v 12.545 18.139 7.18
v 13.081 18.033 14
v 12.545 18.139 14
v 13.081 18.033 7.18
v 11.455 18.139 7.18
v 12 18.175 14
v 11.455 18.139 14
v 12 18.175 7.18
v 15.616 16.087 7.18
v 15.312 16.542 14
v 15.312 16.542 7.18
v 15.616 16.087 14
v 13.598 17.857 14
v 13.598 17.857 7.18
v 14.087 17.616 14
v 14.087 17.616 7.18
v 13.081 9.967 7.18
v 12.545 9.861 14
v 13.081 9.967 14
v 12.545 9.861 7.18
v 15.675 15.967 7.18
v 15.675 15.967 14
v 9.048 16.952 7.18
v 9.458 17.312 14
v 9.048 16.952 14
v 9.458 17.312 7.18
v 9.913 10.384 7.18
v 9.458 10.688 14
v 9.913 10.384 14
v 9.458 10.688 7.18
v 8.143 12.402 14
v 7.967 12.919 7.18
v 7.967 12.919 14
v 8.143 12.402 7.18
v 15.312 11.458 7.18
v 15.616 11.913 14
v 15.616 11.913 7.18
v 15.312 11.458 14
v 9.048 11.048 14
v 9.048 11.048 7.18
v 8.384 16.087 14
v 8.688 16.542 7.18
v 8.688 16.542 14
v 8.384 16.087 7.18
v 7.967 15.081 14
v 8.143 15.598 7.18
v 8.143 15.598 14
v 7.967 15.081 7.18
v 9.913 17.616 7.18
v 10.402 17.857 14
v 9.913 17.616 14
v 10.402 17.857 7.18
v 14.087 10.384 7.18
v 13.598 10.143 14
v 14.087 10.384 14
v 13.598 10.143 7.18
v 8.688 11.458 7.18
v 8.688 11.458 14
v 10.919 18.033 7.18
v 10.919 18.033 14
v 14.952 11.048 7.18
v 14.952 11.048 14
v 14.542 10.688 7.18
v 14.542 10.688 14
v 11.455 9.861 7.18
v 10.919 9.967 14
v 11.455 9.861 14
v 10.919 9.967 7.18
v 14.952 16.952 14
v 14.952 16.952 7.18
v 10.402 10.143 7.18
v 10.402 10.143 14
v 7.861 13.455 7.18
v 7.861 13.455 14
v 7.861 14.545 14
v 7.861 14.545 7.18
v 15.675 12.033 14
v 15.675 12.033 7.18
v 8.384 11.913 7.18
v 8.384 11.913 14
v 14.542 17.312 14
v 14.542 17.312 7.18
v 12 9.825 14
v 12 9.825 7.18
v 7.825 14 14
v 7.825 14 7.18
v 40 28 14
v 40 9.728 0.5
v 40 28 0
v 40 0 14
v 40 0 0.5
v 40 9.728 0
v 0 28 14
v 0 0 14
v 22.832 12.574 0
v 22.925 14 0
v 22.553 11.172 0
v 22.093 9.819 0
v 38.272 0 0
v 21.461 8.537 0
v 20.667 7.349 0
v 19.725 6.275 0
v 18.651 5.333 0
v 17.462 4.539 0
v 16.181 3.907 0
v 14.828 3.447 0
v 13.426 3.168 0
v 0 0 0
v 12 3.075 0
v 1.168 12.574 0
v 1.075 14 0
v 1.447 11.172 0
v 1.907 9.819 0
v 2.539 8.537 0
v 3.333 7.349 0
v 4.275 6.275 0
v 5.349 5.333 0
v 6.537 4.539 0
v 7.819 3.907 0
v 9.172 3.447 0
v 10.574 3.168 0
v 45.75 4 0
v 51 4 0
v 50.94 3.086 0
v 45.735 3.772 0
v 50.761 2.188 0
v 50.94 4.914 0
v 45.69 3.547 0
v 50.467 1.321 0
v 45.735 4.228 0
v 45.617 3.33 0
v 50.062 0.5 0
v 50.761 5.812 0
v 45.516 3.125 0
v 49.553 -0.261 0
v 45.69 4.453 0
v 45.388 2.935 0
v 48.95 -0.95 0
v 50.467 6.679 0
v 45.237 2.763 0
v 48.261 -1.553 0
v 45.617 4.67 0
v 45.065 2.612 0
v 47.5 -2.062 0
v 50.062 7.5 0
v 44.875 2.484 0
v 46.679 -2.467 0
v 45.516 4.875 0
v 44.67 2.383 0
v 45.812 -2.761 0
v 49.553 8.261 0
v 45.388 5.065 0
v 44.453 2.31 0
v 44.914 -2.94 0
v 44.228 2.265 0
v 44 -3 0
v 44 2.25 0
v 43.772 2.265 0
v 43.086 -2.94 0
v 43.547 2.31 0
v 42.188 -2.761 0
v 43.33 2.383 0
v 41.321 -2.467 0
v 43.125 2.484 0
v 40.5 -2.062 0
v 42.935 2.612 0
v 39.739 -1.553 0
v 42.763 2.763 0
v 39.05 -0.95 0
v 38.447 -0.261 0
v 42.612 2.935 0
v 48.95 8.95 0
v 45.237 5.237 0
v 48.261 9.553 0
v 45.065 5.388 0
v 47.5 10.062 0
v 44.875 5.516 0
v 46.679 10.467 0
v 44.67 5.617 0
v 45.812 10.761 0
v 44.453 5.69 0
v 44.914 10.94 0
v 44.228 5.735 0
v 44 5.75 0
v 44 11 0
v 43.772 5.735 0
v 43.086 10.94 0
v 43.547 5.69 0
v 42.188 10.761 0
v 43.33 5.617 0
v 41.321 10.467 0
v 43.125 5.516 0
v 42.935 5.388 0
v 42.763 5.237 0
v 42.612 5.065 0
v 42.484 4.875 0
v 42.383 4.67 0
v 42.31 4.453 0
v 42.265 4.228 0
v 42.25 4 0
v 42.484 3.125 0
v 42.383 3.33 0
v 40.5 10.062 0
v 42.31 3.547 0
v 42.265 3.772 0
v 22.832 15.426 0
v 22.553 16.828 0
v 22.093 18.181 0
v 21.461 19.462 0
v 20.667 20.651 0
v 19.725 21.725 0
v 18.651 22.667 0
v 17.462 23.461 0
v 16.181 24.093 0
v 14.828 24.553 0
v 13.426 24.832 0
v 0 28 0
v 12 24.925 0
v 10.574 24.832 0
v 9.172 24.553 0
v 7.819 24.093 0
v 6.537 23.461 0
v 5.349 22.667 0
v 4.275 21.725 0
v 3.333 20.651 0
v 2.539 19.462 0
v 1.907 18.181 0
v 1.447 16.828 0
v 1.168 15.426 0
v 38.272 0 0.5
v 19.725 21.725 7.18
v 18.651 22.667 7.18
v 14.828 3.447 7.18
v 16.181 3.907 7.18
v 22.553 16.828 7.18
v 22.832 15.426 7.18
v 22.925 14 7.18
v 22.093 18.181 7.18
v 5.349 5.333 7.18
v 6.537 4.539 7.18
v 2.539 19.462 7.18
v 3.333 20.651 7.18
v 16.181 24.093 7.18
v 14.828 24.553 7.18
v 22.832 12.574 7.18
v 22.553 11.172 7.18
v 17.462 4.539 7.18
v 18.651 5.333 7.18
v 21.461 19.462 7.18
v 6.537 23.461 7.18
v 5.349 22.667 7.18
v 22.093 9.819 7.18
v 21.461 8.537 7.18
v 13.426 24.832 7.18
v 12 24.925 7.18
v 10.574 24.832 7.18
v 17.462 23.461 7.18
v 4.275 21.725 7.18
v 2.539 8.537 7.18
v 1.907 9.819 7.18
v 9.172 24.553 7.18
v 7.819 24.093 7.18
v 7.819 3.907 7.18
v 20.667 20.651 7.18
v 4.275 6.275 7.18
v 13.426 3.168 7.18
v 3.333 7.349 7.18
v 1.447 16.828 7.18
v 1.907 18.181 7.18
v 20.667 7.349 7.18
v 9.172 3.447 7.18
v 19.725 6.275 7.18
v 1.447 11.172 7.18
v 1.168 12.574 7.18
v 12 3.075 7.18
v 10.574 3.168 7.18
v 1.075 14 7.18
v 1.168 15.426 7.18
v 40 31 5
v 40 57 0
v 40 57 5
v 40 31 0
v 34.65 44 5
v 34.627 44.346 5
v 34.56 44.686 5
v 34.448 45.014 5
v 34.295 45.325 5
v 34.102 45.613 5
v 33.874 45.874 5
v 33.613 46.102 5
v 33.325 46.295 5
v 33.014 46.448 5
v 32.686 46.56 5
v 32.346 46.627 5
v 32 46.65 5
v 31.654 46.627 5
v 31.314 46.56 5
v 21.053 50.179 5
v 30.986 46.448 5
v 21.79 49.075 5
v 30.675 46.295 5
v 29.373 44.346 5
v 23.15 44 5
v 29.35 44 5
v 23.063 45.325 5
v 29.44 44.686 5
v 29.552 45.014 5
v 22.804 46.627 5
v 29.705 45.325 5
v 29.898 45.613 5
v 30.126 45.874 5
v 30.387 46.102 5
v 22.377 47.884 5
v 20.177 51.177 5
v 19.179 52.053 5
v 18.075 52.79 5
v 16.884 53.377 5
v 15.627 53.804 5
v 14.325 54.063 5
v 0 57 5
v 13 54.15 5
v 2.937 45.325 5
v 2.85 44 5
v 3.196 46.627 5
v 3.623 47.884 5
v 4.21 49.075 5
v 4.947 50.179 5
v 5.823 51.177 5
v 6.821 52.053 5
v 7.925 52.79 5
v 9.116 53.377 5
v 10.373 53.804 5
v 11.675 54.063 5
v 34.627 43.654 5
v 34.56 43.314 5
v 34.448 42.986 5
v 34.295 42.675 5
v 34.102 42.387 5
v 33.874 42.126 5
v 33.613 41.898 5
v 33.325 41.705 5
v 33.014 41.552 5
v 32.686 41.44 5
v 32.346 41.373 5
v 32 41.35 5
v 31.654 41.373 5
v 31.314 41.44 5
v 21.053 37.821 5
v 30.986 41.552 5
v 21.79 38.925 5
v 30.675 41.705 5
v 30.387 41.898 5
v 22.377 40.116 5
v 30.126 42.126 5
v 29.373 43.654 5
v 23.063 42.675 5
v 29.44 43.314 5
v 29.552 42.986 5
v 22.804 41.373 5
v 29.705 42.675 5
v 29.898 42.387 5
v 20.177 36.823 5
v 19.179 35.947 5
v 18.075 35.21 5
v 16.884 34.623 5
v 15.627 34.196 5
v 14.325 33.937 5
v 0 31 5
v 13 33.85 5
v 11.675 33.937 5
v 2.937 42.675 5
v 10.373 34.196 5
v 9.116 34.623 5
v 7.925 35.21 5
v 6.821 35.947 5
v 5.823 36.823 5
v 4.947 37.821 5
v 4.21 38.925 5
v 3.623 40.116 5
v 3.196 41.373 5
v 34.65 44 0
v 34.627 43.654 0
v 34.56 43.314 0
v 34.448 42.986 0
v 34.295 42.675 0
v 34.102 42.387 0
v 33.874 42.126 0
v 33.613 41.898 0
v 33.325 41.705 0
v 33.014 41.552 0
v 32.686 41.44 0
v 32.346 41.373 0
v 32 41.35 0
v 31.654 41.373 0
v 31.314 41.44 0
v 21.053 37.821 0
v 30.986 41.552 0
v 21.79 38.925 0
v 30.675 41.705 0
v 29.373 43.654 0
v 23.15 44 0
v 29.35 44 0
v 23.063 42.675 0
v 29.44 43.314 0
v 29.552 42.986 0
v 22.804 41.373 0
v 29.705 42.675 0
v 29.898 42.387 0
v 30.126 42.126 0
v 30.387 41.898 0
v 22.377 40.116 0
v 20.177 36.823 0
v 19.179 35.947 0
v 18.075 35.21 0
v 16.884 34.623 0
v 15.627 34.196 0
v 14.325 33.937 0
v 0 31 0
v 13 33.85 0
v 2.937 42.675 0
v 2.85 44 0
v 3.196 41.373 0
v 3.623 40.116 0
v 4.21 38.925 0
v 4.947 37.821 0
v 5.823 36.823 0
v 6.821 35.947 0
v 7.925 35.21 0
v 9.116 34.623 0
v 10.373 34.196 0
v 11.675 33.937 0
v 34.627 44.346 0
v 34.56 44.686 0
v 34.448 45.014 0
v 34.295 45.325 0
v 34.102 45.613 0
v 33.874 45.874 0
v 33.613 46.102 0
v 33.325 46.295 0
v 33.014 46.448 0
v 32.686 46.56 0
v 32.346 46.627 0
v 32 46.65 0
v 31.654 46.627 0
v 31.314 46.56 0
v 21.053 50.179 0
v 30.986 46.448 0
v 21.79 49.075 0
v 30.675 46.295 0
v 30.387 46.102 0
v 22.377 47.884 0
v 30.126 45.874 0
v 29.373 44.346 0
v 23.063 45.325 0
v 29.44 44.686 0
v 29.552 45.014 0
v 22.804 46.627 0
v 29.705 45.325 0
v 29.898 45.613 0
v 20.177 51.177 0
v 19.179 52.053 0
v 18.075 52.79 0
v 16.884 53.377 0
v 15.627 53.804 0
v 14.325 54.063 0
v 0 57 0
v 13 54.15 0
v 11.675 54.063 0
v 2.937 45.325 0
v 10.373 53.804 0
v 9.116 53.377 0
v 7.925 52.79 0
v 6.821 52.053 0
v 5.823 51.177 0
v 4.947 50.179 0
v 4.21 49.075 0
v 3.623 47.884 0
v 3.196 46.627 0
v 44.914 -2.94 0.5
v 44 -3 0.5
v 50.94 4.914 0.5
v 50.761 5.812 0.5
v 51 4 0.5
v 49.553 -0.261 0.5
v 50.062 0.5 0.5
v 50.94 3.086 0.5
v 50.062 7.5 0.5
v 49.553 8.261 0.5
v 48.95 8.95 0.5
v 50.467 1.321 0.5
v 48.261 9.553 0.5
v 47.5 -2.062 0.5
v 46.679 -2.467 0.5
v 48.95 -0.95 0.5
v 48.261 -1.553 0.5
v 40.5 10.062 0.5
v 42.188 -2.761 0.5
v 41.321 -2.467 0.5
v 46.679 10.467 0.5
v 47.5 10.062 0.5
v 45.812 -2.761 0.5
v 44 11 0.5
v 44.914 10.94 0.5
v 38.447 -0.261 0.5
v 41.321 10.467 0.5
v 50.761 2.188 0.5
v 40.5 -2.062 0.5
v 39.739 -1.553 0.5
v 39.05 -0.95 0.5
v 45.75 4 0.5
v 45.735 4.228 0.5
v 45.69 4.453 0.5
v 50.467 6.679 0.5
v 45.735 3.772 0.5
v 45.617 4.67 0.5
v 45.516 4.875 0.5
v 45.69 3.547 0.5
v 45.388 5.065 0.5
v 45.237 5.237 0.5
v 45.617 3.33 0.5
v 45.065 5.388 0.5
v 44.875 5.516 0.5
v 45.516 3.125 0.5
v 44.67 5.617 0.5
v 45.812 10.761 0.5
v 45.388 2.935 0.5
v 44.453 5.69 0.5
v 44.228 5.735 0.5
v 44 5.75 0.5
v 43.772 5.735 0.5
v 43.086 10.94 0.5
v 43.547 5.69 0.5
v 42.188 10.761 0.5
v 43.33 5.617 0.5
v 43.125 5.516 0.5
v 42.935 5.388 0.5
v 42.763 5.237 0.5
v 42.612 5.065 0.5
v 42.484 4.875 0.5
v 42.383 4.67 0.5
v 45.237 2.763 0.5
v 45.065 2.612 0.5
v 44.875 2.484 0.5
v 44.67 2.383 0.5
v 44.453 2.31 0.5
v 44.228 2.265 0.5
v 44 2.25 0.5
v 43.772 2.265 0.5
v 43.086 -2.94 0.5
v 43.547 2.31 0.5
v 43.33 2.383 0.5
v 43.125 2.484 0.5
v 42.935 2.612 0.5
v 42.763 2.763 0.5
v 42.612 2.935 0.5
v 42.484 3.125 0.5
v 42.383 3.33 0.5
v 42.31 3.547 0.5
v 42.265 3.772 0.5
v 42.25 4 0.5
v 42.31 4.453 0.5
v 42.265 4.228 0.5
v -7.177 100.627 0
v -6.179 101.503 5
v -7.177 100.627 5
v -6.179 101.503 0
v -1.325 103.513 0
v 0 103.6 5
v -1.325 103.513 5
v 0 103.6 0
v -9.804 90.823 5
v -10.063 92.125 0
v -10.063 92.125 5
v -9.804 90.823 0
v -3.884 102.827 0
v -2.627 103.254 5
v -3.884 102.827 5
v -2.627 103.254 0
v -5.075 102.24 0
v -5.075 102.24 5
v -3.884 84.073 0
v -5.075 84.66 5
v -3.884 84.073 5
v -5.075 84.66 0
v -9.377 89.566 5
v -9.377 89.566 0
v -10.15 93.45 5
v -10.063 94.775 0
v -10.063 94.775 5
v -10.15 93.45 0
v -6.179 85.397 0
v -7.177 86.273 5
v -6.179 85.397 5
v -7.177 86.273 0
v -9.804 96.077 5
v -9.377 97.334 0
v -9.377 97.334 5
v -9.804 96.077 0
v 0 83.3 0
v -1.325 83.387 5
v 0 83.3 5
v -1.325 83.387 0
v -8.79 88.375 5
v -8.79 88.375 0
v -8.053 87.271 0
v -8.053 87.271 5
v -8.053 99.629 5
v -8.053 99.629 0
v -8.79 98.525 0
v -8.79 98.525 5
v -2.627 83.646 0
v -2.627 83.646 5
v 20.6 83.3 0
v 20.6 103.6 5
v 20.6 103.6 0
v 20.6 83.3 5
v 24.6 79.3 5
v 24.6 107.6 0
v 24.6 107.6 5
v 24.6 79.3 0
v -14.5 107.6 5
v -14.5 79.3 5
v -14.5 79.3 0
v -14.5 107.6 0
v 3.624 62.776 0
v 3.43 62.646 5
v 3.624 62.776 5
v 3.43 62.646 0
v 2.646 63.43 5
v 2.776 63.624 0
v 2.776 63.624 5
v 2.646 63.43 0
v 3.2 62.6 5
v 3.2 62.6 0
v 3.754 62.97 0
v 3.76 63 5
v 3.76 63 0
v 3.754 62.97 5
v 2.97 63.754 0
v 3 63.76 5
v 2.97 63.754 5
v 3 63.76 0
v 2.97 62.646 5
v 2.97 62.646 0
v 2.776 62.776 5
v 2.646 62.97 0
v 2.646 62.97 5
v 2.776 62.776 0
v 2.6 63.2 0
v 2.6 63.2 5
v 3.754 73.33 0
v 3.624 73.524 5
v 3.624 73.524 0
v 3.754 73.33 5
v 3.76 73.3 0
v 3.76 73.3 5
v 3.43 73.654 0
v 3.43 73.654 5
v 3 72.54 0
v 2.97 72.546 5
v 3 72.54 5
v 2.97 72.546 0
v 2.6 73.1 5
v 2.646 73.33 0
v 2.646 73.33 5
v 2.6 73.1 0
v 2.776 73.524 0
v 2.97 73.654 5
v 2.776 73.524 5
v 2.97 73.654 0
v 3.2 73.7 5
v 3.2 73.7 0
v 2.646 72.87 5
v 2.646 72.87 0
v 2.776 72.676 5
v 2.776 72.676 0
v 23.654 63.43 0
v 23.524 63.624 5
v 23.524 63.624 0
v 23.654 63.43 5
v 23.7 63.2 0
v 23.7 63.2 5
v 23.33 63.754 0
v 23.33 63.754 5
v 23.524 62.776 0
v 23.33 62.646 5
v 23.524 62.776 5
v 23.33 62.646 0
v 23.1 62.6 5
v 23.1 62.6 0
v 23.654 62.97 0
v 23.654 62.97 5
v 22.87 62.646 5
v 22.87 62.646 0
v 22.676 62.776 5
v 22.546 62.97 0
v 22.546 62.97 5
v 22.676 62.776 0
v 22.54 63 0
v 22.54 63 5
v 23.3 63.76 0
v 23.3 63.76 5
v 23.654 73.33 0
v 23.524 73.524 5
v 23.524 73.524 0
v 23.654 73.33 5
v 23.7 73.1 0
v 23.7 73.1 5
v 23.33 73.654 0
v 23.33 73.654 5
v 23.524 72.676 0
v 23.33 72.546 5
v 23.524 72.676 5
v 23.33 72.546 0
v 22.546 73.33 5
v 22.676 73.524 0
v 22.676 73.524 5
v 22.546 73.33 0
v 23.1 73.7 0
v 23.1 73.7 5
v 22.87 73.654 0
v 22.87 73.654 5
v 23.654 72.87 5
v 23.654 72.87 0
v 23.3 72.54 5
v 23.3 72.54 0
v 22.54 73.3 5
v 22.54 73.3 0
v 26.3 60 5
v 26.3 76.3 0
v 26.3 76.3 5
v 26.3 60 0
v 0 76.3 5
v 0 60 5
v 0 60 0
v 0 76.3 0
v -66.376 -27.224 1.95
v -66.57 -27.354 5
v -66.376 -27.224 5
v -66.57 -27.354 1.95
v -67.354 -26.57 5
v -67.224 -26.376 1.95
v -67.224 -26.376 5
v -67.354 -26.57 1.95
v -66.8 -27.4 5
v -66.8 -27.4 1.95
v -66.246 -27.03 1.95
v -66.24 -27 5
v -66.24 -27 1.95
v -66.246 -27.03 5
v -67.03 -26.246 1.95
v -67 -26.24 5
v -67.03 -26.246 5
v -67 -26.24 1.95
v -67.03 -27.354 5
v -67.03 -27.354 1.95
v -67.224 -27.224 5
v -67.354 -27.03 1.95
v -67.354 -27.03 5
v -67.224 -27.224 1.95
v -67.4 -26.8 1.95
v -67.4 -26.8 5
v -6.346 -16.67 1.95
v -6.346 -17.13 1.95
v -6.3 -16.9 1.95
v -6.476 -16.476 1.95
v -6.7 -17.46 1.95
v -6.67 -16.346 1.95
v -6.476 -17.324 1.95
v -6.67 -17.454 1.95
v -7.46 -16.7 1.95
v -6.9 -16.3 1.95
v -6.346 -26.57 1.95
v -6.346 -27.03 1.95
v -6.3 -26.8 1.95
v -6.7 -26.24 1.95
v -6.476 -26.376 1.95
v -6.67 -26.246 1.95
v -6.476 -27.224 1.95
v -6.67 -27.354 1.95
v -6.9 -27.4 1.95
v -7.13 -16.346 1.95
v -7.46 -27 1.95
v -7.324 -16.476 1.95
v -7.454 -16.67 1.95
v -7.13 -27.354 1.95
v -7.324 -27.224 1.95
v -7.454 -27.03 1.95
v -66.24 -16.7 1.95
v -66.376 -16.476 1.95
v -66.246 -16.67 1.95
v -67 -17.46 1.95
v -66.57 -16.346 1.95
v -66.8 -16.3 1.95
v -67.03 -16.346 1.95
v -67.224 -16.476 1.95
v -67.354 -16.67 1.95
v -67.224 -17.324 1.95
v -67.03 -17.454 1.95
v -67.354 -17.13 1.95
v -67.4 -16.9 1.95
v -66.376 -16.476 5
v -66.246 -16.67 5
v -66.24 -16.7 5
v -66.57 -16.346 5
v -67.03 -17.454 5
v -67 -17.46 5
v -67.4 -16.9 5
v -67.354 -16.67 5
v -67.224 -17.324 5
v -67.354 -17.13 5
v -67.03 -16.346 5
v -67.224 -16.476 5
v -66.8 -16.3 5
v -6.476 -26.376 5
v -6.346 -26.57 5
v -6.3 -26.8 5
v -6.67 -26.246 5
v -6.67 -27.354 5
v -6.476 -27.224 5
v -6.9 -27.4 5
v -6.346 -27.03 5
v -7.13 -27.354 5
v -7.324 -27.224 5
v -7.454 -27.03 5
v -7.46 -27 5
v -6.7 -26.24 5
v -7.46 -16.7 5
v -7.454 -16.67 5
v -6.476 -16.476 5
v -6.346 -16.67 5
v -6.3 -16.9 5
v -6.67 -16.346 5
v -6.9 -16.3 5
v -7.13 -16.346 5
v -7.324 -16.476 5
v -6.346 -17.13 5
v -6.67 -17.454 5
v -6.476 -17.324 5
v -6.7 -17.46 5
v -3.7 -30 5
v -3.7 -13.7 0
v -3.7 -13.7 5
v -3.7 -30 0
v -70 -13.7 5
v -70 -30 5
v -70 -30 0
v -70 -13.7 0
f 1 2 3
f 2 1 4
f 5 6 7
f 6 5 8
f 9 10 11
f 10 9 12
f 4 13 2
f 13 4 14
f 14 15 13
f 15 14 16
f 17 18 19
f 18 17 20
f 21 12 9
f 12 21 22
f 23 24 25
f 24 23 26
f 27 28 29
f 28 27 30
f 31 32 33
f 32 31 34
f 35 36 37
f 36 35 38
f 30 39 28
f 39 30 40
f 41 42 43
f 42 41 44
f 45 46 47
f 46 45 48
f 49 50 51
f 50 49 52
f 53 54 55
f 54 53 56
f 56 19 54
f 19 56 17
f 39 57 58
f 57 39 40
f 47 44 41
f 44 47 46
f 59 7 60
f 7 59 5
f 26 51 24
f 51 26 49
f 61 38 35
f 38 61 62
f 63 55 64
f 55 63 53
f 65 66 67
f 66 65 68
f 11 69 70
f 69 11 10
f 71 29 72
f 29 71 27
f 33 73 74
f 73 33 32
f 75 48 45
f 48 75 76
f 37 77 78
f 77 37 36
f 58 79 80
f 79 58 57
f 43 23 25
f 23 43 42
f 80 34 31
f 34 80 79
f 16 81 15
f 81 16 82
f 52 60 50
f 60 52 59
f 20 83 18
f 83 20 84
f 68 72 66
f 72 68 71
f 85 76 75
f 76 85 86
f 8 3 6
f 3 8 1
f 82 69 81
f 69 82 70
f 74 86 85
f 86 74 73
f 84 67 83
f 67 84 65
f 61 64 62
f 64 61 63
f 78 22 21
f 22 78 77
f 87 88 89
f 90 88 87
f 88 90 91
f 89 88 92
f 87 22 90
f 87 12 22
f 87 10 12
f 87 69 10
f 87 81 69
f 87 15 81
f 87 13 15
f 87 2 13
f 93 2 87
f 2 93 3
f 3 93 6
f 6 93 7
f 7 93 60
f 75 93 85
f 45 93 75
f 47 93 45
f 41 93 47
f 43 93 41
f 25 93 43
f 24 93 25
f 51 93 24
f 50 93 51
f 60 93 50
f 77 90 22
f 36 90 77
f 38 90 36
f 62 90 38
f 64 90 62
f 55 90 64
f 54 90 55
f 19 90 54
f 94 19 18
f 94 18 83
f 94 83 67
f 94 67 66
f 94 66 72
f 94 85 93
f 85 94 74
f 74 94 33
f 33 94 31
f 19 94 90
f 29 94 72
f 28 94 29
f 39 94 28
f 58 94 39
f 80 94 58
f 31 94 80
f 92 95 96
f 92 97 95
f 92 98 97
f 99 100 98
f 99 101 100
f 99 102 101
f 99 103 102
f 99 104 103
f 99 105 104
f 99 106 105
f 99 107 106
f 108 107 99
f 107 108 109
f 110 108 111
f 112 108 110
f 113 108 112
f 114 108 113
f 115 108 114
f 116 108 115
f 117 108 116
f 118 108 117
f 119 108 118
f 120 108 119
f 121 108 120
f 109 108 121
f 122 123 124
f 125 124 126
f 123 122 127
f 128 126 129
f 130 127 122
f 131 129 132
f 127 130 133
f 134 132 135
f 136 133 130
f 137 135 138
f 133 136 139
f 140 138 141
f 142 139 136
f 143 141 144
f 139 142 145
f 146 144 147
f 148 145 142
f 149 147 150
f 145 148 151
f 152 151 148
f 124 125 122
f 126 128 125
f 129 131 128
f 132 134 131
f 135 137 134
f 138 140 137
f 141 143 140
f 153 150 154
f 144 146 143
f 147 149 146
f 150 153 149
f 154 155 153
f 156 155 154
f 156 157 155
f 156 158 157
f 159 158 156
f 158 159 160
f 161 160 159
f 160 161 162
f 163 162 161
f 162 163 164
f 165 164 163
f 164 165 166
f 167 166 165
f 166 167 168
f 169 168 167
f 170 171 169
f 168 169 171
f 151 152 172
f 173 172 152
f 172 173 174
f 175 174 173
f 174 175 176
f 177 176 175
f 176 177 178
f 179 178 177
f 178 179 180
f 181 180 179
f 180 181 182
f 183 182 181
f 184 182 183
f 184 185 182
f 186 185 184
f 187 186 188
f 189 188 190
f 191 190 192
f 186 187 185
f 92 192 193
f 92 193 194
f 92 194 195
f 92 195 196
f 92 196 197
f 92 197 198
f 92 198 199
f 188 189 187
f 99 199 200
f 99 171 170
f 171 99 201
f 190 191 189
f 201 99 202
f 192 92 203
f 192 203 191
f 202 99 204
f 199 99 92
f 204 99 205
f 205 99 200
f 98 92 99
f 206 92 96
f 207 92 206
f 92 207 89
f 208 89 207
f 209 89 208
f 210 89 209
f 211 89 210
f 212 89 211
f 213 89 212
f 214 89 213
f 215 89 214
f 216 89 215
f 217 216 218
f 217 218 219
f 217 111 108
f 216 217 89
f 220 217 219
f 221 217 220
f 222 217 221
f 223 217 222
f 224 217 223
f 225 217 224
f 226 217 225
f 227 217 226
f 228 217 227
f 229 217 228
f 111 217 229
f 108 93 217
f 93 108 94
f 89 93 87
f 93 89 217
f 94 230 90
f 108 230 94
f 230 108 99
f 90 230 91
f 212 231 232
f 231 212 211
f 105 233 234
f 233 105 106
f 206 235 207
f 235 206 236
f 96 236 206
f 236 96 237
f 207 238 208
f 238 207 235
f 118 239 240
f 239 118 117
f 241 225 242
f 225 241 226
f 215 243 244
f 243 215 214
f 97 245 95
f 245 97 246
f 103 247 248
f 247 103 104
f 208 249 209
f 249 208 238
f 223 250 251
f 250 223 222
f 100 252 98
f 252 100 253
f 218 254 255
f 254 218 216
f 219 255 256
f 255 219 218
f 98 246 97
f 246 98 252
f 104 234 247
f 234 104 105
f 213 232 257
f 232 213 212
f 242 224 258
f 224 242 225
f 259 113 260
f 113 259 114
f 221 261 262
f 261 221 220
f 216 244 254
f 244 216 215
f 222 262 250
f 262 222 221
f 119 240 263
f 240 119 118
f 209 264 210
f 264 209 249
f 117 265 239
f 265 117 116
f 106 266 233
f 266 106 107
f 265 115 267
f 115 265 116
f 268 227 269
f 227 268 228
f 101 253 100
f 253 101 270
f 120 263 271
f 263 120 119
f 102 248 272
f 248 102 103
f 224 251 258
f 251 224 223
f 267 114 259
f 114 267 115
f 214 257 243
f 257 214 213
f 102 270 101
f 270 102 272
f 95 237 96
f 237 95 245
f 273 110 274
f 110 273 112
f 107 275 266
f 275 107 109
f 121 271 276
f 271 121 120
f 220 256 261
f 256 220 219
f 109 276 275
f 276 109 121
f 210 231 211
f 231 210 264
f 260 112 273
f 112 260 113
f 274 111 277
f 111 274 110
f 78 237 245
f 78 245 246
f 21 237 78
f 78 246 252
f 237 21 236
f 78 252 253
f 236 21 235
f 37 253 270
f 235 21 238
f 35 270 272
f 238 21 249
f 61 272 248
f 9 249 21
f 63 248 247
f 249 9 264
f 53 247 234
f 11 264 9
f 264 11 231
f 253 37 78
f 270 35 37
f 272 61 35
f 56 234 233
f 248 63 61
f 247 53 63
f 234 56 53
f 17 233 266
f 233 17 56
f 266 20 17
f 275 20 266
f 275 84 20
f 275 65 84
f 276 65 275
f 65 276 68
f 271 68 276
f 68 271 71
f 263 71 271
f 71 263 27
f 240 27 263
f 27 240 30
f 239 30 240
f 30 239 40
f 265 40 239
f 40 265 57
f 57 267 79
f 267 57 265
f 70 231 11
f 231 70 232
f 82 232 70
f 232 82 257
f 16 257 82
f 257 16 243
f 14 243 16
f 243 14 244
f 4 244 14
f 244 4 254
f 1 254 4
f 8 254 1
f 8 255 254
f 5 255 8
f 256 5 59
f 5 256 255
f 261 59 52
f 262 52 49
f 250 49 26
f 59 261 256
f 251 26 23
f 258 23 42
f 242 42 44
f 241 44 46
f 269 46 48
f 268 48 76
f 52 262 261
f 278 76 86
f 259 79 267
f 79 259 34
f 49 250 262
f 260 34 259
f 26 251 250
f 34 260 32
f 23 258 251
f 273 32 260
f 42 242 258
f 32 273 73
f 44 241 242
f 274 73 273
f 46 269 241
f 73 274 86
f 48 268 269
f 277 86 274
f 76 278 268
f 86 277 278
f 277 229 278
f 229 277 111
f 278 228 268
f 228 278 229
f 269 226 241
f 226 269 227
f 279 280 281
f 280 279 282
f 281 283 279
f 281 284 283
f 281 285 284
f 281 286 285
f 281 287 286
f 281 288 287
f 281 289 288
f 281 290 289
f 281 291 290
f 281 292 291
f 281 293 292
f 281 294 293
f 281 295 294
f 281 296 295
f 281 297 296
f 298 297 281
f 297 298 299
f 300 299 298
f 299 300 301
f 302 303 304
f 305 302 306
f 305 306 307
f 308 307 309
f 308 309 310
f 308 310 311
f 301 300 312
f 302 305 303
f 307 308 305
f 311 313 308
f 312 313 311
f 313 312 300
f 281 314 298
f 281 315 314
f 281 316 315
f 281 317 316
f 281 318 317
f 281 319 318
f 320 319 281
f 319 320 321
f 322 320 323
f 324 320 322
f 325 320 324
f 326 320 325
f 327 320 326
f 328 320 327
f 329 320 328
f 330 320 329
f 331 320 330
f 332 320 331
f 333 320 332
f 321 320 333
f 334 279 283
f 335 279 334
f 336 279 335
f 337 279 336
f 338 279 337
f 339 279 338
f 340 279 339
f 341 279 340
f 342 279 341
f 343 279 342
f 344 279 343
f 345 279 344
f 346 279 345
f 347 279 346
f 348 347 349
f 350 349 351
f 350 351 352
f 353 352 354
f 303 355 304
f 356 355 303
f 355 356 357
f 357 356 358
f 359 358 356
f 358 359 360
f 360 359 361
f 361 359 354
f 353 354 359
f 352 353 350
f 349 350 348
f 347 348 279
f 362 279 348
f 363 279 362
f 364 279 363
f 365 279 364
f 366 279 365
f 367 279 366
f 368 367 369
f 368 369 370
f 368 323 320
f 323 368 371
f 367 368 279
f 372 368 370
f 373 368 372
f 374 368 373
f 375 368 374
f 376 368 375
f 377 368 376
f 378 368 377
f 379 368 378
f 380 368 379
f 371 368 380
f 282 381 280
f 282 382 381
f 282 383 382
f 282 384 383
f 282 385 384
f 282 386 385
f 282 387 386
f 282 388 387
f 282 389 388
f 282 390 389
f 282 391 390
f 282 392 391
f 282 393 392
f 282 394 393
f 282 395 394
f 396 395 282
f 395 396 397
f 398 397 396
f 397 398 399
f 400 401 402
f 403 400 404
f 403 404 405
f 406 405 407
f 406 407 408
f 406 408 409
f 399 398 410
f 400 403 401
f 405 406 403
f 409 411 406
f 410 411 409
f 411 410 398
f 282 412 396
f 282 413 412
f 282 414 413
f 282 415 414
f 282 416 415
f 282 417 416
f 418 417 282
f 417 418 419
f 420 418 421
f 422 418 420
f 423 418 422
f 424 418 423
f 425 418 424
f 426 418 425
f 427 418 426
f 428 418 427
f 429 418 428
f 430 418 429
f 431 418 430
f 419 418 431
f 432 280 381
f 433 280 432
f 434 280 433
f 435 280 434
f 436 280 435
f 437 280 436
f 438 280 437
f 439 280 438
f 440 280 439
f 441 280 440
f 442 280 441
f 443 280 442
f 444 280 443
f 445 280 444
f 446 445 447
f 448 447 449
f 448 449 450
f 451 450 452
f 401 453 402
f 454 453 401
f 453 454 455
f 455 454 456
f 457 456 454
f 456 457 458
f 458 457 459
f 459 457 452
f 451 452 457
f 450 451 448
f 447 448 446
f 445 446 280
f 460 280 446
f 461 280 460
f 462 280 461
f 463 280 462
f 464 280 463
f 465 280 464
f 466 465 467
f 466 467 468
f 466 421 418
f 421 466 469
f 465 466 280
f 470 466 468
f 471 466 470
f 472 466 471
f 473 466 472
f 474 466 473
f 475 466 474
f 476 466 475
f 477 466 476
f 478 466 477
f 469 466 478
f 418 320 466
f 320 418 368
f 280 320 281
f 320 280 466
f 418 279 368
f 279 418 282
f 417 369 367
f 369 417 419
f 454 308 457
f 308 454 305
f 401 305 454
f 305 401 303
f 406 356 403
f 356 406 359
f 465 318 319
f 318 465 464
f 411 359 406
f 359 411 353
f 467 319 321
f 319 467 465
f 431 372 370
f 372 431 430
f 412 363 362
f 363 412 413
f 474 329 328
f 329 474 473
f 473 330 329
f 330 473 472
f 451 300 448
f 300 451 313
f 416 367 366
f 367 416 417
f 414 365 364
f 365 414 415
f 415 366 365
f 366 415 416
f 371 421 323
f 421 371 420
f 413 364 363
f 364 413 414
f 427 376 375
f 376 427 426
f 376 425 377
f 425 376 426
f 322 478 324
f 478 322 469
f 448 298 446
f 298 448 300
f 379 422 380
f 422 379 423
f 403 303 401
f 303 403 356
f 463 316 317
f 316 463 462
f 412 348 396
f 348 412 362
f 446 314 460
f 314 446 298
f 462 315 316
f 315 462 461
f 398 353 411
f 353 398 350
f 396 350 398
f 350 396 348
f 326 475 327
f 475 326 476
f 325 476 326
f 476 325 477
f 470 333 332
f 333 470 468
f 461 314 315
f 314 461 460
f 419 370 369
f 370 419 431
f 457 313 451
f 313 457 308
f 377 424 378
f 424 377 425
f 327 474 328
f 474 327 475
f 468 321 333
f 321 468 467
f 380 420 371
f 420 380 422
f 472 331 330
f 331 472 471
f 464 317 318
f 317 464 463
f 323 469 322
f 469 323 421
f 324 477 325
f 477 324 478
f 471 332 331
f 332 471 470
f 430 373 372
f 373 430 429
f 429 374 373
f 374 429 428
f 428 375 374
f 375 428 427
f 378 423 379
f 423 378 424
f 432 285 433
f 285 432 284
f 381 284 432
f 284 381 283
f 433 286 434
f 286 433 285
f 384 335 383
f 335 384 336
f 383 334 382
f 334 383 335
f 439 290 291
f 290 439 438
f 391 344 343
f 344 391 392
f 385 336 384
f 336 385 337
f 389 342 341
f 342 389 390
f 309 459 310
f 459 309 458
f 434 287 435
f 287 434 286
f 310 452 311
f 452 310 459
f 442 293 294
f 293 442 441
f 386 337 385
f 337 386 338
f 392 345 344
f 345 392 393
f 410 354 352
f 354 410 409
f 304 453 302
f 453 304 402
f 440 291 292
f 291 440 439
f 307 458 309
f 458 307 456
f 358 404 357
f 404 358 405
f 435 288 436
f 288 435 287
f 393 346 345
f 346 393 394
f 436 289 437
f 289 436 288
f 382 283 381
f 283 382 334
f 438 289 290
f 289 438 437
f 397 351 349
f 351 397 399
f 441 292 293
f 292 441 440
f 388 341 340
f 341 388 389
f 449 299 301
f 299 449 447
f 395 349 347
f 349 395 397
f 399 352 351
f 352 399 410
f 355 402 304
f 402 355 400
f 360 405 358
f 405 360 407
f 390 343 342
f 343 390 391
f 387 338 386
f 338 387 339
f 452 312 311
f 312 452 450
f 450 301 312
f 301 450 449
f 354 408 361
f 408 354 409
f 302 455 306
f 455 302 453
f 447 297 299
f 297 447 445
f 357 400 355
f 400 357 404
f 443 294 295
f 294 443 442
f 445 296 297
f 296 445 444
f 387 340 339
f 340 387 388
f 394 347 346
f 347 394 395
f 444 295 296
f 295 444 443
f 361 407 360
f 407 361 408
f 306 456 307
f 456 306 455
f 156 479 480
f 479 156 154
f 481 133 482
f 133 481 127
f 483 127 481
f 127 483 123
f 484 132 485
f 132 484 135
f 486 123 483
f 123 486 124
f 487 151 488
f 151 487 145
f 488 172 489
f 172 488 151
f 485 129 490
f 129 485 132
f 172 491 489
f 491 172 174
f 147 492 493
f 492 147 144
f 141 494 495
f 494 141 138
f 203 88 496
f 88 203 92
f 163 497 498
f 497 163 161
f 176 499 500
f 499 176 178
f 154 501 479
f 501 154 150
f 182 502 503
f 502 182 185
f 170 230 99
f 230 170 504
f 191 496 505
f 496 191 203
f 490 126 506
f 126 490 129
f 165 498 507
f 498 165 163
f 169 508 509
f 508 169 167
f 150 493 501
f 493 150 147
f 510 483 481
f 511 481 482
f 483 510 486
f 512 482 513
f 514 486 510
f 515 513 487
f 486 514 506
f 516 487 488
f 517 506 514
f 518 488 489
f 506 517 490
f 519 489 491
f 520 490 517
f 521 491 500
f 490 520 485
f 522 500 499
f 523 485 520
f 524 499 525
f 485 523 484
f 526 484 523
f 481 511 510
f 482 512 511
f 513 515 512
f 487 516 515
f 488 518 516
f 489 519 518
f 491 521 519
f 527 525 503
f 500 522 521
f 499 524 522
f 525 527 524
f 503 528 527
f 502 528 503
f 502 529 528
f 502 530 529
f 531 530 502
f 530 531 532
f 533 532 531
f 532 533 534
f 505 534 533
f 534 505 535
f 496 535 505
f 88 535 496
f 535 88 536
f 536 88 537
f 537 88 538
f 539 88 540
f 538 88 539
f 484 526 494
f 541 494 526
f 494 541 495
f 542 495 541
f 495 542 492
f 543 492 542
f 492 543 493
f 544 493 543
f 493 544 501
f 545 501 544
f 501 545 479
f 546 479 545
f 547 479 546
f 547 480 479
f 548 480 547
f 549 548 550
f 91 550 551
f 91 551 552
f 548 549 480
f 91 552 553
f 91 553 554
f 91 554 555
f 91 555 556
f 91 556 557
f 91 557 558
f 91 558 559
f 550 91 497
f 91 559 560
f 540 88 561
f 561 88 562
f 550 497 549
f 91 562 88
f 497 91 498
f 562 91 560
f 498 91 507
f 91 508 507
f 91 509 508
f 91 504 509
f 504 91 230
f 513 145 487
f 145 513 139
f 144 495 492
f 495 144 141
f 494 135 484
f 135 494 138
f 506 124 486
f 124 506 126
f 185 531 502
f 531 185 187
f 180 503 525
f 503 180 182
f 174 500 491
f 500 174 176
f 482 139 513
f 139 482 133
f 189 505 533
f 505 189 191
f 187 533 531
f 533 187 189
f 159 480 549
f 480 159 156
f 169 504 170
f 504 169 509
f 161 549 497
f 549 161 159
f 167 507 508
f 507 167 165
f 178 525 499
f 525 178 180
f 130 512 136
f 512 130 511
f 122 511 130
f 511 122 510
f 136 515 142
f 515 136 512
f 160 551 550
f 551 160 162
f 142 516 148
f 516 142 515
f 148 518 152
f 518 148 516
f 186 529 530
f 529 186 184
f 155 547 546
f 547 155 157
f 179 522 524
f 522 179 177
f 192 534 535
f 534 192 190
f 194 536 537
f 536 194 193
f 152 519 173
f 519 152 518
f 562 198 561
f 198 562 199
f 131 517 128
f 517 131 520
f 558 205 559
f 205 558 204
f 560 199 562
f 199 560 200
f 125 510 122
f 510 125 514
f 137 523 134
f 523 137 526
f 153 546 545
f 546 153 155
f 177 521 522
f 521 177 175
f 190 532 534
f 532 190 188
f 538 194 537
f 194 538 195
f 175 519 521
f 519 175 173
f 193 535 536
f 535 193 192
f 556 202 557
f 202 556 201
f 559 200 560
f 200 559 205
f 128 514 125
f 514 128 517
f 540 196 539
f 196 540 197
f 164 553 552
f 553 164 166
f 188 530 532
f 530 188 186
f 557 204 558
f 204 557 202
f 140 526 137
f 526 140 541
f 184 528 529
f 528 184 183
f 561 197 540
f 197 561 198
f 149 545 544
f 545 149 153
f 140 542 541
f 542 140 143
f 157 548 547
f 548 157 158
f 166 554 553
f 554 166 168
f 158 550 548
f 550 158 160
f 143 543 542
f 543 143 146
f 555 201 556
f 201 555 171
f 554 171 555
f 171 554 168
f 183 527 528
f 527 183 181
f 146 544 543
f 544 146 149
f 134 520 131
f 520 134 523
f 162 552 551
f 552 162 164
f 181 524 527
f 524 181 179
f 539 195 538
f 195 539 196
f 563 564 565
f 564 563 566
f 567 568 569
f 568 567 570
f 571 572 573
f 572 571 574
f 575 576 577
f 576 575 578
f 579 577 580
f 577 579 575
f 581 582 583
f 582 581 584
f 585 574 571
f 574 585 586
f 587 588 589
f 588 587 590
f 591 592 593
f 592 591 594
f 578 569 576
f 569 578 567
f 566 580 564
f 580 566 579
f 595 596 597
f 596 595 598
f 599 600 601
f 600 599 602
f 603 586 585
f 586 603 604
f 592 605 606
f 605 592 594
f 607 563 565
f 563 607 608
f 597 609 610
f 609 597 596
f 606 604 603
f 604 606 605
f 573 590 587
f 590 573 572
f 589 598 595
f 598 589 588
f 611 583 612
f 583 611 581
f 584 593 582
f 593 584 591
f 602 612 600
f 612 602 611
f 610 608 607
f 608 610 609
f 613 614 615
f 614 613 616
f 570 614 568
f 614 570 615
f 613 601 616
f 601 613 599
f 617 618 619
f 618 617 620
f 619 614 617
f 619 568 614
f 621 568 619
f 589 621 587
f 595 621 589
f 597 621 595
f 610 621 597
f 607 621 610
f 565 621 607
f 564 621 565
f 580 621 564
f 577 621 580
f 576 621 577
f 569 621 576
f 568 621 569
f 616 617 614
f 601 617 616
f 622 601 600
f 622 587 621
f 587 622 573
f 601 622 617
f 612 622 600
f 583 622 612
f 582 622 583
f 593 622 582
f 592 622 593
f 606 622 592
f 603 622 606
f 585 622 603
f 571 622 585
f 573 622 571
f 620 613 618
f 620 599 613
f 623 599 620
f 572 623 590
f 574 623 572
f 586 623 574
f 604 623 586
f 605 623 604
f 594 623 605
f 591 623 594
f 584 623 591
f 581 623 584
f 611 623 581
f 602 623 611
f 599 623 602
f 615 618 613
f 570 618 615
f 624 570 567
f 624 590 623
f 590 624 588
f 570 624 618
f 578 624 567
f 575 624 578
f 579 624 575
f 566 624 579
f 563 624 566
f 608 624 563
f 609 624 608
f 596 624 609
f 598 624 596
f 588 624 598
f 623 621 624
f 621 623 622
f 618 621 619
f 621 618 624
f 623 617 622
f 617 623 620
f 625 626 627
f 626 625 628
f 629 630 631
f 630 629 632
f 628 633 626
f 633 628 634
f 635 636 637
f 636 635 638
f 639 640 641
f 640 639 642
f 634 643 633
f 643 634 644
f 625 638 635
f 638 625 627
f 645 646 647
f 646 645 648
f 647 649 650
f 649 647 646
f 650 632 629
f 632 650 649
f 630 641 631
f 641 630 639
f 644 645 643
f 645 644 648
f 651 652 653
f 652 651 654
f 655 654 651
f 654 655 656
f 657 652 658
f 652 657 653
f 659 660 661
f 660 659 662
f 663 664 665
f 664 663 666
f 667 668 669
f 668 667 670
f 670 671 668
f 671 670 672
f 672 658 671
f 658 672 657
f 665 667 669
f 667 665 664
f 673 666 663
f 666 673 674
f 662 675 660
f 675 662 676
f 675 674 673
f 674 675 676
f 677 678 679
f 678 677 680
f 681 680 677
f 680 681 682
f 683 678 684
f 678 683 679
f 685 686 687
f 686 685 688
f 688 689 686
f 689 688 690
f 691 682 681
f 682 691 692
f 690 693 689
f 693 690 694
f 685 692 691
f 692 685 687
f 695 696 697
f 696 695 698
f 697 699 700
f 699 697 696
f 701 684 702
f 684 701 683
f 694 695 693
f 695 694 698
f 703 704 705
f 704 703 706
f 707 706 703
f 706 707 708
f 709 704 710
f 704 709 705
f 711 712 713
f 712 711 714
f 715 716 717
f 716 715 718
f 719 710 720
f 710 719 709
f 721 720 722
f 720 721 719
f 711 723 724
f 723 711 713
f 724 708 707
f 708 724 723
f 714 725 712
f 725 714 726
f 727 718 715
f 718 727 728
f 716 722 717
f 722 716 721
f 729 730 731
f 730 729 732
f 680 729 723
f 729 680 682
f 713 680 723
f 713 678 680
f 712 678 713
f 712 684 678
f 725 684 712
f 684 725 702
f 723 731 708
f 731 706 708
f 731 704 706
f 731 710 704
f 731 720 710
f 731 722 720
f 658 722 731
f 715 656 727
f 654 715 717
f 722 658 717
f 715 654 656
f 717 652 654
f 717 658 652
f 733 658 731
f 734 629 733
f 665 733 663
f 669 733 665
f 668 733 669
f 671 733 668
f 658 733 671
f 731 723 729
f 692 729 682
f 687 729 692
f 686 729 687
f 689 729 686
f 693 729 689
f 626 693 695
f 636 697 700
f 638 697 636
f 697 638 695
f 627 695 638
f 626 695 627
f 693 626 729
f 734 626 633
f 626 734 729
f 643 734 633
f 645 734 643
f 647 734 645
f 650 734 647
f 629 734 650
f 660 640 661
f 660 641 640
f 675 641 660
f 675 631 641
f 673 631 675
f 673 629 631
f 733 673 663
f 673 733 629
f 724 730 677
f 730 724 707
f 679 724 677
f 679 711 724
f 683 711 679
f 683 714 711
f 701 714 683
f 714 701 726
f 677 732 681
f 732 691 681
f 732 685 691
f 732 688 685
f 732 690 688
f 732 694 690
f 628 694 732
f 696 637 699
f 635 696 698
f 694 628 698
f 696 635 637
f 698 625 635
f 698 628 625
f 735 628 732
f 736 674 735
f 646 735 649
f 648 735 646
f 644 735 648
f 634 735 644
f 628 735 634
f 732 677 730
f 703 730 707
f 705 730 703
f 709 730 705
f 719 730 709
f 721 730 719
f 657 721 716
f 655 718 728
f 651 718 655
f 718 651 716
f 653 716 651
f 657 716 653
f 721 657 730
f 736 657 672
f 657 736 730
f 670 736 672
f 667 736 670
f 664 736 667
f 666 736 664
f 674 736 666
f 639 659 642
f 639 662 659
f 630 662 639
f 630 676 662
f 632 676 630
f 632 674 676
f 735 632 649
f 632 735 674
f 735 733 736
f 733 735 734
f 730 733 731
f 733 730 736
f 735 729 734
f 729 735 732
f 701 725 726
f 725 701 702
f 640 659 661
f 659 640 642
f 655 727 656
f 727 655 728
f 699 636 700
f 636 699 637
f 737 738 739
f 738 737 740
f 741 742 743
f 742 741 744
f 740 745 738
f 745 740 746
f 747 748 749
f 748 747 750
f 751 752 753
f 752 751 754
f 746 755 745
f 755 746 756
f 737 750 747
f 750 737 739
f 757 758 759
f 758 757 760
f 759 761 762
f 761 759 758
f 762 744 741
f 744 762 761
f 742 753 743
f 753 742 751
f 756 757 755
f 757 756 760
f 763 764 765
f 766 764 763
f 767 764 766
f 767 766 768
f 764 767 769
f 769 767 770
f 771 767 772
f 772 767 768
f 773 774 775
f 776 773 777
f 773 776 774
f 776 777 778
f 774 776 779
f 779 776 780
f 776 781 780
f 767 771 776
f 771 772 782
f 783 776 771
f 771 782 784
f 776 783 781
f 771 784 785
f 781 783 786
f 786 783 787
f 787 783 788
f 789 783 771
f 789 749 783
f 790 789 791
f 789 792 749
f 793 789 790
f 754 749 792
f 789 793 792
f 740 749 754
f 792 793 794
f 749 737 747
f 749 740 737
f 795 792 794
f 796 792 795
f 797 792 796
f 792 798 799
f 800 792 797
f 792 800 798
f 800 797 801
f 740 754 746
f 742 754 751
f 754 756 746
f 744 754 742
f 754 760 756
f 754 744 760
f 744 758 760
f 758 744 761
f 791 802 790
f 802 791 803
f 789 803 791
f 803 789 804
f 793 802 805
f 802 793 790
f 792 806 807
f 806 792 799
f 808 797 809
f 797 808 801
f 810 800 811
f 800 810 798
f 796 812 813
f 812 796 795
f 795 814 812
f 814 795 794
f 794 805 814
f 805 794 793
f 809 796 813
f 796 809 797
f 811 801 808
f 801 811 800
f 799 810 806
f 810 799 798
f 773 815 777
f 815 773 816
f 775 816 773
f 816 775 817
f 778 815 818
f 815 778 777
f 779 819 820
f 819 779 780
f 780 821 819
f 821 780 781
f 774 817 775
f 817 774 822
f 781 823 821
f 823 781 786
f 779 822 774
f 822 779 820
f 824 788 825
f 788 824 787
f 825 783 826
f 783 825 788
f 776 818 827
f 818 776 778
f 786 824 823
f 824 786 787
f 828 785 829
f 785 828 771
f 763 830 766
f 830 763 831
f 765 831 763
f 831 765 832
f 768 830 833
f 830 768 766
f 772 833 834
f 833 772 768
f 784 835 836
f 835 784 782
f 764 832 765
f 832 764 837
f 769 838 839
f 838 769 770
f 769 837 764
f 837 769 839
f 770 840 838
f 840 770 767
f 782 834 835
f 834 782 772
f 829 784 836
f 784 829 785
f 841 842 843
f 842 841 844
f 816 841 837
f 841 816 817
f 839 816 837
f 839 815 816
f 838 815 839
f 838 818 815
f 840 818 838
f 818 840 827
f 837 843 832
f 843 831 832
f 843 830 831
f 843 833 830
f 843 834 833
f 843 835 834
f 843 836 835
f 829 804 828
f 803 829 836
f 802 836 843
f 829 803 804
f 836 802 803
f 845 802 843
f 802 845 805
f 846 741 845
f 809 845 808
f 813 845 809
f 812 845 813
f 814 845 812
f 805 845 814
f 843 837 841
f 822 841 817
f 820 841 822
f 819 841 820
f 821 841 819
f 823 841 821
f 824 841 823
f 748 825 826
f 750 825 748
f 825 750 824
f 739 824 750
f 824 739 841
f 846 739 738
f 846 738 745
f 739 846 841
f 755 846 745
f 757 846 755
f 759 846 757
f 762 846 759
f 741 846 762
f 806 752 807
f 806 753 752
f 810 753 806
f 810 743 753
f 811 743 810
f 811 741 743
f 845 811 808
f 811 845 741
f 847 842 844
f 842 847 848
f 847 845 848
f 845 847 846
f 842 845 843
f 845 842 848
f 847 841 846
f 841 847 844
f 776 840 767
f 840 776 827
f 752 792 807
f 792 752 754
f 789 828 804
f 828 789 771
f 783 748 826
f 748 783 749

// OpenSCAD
// Gen-DB — fit coupon: O20/O5 THROUGH pockets at carrier thickness (test on a steel offcut), 608 seat,
// D-flat bore, gap shim, and one bobbin-bay slice (bobbin footprint + bay_clear) to test former fit.
include <parameters.scad>;
$fn = 48;
// D-flat keyed bore: flat faces +X (angle 0 = magnet pocket 0 = index notch)
module dflat_bore(h) {
    intersection() {
        cylinder(d=shaft_bore, h=h);
        translate([-shaft_bore, -shaft_bore, 0]) cube([shaft_bore + dflat_x, 2*shaft_bore, h]);
    }
}
module sector_2d(r_in, r_out, ang) {
    polygon([
        for (a = [-ang/2 : ang/24 : ang/2]) [r_in*cos(a), r_in*sin(a)],
        for (a = [ang/2 : -ang/24 : -ang/2]) [r_out*cos(a), r_out*sin(a)]
    ]);
}
module footprint_2d() { offset(r=wall) sector_2d(coil_id_r, coil_od_r, span_deg); }
module hub_2d()       { offset(delta=-coil_core_inset) sector_2d(coil_id_r, coil_od_r, span_deg); }

block_w = 40; block_d = 28; block_h = 14;
difference() {
    cube([block_w, block_d, block_h]);
    translate([12, block_d/2, -0.02]) cylinder(d=bearing_d, h=bearing_h);
    translate([12, block_d/2, -0.1]) dflat_bore(block_h + 1);
}
translate([0, block_d + 3, 0]) difference() {
    cube([40, 26, carrier_thick]);
    translate([13, 13, -0.1]) cylinder(d=large_pocket_d, h=carrier_thick + 0.2);
    translate([32, 13, -0.1]) cylinder(d=small_pocket_d, h=carrier_thick + 0.2);
}
translate([block_w + 4, 4, 0])
    difference() {
        cylinder(d=spacer_pad_od, h=gap_spacer_h);
        translate([0, 0, -0.1]) cylinder(d=spacer_pad_id, h=gap_spacer_h + 0.2);
    }
// KEYHOLE pole pocket test (2026-10-18): O20 disc pocket + N42 20x10x5 block pocket merged (hull), as on the arcs.
// Drop a disc and a block in: they must push each other onto the two far walls and sit flat. Block pocket has corner reliefs.
translate([0, block_d + 3 + 26 + 3 + block_radial + block_pocket_clear + 6 + 3 + max(block_tangential, large_pocket_d) / 2 + 4, 0]) difference() {
    translate([-14.5, -(max(block_tangential, large_pocket_d) / 2 + 4), 0]) cube([14.5 + abs(block_R_list[0] - R_large) + block_radial / 2 + 4, max(block_tangential, large_pocket_d) + 8, carrier_thick]);
    translate([0, 0, -0.1]) {
        translate([disc_pocket_shift * sign(block_R_list[0] - R_large), 0, 0]) cylinder(d=large_pocket_d, h=carrier_thick + 0.2);
        translate([disc_pocket_shift * sign(block_R_list[0] - R_large), -(block_tangential + block_pocket_clear)/2, 0])
            cube([abs(block_R_list[0] - R_large) - abs(block_pocket_shift) + (block_radial + block_pocket_clear)/2 - disc_pocket_shift * sign(block_R_list[0] - R_large), block_tangential + block_pocket_clear, carrier_thick + 0.2]);
    }
}
// N42 20x10x5 BLOCK through-pocket test (block + block_pocket_clear, 1.2 mm corner reliefs), 2026-10-16
translate([0, block_d + 3 + 26 + 3, 0]) difference() {
    cube([block_tangential + block_pocket_clear + 6, block_radial + block_pocket_clear + 6, carrier_thick]);
    translate([3, 3, -0.1]) cube([block_tangential + block_pocket_clear, block_radial + block_pocket_clear, carrier_thick + 0.2]);
    for (x = [3.2, 3 + block_tangential + block_pocket_clear - 0.2], y = [3.2, 3 + block_radial + block_pocket_clear - 0.2])
        translate([x, y, -0.1]) cylinder(d=1.2, h=carrier_thick + 0.2, $fn=16);
}
// N52 60x10x3 BAR blind-pocket test (2026-10-21): bar + 0.3 mm, depth block2_pocket_depth: the bar face must sit flush with the top.
translate([-70, -30, 0]) difference() {
    cube([block2_tangential + block2_pocket_clear + 6, block2_radial + block2_pocket_clear + 6, carrier_thick]);
    translate([3, 3, carrier_thick - block2_pocket_depth]) cube([block2_tangential + block2_pocket_clear, block2_radial + block2_pocket_clear, carrier_thick]);
    for (x = [3.2, 3 + block2_tangential + block2_pocket_clear - 0.2], y = [3.2, 3 + block2_radial + block2_pocket_clear - 0.2])
        translate([x, y, carrier_thick - block2_pocket_depth]) cylinder(d=1.2, h=carrier_thick, $fn=16);
}
